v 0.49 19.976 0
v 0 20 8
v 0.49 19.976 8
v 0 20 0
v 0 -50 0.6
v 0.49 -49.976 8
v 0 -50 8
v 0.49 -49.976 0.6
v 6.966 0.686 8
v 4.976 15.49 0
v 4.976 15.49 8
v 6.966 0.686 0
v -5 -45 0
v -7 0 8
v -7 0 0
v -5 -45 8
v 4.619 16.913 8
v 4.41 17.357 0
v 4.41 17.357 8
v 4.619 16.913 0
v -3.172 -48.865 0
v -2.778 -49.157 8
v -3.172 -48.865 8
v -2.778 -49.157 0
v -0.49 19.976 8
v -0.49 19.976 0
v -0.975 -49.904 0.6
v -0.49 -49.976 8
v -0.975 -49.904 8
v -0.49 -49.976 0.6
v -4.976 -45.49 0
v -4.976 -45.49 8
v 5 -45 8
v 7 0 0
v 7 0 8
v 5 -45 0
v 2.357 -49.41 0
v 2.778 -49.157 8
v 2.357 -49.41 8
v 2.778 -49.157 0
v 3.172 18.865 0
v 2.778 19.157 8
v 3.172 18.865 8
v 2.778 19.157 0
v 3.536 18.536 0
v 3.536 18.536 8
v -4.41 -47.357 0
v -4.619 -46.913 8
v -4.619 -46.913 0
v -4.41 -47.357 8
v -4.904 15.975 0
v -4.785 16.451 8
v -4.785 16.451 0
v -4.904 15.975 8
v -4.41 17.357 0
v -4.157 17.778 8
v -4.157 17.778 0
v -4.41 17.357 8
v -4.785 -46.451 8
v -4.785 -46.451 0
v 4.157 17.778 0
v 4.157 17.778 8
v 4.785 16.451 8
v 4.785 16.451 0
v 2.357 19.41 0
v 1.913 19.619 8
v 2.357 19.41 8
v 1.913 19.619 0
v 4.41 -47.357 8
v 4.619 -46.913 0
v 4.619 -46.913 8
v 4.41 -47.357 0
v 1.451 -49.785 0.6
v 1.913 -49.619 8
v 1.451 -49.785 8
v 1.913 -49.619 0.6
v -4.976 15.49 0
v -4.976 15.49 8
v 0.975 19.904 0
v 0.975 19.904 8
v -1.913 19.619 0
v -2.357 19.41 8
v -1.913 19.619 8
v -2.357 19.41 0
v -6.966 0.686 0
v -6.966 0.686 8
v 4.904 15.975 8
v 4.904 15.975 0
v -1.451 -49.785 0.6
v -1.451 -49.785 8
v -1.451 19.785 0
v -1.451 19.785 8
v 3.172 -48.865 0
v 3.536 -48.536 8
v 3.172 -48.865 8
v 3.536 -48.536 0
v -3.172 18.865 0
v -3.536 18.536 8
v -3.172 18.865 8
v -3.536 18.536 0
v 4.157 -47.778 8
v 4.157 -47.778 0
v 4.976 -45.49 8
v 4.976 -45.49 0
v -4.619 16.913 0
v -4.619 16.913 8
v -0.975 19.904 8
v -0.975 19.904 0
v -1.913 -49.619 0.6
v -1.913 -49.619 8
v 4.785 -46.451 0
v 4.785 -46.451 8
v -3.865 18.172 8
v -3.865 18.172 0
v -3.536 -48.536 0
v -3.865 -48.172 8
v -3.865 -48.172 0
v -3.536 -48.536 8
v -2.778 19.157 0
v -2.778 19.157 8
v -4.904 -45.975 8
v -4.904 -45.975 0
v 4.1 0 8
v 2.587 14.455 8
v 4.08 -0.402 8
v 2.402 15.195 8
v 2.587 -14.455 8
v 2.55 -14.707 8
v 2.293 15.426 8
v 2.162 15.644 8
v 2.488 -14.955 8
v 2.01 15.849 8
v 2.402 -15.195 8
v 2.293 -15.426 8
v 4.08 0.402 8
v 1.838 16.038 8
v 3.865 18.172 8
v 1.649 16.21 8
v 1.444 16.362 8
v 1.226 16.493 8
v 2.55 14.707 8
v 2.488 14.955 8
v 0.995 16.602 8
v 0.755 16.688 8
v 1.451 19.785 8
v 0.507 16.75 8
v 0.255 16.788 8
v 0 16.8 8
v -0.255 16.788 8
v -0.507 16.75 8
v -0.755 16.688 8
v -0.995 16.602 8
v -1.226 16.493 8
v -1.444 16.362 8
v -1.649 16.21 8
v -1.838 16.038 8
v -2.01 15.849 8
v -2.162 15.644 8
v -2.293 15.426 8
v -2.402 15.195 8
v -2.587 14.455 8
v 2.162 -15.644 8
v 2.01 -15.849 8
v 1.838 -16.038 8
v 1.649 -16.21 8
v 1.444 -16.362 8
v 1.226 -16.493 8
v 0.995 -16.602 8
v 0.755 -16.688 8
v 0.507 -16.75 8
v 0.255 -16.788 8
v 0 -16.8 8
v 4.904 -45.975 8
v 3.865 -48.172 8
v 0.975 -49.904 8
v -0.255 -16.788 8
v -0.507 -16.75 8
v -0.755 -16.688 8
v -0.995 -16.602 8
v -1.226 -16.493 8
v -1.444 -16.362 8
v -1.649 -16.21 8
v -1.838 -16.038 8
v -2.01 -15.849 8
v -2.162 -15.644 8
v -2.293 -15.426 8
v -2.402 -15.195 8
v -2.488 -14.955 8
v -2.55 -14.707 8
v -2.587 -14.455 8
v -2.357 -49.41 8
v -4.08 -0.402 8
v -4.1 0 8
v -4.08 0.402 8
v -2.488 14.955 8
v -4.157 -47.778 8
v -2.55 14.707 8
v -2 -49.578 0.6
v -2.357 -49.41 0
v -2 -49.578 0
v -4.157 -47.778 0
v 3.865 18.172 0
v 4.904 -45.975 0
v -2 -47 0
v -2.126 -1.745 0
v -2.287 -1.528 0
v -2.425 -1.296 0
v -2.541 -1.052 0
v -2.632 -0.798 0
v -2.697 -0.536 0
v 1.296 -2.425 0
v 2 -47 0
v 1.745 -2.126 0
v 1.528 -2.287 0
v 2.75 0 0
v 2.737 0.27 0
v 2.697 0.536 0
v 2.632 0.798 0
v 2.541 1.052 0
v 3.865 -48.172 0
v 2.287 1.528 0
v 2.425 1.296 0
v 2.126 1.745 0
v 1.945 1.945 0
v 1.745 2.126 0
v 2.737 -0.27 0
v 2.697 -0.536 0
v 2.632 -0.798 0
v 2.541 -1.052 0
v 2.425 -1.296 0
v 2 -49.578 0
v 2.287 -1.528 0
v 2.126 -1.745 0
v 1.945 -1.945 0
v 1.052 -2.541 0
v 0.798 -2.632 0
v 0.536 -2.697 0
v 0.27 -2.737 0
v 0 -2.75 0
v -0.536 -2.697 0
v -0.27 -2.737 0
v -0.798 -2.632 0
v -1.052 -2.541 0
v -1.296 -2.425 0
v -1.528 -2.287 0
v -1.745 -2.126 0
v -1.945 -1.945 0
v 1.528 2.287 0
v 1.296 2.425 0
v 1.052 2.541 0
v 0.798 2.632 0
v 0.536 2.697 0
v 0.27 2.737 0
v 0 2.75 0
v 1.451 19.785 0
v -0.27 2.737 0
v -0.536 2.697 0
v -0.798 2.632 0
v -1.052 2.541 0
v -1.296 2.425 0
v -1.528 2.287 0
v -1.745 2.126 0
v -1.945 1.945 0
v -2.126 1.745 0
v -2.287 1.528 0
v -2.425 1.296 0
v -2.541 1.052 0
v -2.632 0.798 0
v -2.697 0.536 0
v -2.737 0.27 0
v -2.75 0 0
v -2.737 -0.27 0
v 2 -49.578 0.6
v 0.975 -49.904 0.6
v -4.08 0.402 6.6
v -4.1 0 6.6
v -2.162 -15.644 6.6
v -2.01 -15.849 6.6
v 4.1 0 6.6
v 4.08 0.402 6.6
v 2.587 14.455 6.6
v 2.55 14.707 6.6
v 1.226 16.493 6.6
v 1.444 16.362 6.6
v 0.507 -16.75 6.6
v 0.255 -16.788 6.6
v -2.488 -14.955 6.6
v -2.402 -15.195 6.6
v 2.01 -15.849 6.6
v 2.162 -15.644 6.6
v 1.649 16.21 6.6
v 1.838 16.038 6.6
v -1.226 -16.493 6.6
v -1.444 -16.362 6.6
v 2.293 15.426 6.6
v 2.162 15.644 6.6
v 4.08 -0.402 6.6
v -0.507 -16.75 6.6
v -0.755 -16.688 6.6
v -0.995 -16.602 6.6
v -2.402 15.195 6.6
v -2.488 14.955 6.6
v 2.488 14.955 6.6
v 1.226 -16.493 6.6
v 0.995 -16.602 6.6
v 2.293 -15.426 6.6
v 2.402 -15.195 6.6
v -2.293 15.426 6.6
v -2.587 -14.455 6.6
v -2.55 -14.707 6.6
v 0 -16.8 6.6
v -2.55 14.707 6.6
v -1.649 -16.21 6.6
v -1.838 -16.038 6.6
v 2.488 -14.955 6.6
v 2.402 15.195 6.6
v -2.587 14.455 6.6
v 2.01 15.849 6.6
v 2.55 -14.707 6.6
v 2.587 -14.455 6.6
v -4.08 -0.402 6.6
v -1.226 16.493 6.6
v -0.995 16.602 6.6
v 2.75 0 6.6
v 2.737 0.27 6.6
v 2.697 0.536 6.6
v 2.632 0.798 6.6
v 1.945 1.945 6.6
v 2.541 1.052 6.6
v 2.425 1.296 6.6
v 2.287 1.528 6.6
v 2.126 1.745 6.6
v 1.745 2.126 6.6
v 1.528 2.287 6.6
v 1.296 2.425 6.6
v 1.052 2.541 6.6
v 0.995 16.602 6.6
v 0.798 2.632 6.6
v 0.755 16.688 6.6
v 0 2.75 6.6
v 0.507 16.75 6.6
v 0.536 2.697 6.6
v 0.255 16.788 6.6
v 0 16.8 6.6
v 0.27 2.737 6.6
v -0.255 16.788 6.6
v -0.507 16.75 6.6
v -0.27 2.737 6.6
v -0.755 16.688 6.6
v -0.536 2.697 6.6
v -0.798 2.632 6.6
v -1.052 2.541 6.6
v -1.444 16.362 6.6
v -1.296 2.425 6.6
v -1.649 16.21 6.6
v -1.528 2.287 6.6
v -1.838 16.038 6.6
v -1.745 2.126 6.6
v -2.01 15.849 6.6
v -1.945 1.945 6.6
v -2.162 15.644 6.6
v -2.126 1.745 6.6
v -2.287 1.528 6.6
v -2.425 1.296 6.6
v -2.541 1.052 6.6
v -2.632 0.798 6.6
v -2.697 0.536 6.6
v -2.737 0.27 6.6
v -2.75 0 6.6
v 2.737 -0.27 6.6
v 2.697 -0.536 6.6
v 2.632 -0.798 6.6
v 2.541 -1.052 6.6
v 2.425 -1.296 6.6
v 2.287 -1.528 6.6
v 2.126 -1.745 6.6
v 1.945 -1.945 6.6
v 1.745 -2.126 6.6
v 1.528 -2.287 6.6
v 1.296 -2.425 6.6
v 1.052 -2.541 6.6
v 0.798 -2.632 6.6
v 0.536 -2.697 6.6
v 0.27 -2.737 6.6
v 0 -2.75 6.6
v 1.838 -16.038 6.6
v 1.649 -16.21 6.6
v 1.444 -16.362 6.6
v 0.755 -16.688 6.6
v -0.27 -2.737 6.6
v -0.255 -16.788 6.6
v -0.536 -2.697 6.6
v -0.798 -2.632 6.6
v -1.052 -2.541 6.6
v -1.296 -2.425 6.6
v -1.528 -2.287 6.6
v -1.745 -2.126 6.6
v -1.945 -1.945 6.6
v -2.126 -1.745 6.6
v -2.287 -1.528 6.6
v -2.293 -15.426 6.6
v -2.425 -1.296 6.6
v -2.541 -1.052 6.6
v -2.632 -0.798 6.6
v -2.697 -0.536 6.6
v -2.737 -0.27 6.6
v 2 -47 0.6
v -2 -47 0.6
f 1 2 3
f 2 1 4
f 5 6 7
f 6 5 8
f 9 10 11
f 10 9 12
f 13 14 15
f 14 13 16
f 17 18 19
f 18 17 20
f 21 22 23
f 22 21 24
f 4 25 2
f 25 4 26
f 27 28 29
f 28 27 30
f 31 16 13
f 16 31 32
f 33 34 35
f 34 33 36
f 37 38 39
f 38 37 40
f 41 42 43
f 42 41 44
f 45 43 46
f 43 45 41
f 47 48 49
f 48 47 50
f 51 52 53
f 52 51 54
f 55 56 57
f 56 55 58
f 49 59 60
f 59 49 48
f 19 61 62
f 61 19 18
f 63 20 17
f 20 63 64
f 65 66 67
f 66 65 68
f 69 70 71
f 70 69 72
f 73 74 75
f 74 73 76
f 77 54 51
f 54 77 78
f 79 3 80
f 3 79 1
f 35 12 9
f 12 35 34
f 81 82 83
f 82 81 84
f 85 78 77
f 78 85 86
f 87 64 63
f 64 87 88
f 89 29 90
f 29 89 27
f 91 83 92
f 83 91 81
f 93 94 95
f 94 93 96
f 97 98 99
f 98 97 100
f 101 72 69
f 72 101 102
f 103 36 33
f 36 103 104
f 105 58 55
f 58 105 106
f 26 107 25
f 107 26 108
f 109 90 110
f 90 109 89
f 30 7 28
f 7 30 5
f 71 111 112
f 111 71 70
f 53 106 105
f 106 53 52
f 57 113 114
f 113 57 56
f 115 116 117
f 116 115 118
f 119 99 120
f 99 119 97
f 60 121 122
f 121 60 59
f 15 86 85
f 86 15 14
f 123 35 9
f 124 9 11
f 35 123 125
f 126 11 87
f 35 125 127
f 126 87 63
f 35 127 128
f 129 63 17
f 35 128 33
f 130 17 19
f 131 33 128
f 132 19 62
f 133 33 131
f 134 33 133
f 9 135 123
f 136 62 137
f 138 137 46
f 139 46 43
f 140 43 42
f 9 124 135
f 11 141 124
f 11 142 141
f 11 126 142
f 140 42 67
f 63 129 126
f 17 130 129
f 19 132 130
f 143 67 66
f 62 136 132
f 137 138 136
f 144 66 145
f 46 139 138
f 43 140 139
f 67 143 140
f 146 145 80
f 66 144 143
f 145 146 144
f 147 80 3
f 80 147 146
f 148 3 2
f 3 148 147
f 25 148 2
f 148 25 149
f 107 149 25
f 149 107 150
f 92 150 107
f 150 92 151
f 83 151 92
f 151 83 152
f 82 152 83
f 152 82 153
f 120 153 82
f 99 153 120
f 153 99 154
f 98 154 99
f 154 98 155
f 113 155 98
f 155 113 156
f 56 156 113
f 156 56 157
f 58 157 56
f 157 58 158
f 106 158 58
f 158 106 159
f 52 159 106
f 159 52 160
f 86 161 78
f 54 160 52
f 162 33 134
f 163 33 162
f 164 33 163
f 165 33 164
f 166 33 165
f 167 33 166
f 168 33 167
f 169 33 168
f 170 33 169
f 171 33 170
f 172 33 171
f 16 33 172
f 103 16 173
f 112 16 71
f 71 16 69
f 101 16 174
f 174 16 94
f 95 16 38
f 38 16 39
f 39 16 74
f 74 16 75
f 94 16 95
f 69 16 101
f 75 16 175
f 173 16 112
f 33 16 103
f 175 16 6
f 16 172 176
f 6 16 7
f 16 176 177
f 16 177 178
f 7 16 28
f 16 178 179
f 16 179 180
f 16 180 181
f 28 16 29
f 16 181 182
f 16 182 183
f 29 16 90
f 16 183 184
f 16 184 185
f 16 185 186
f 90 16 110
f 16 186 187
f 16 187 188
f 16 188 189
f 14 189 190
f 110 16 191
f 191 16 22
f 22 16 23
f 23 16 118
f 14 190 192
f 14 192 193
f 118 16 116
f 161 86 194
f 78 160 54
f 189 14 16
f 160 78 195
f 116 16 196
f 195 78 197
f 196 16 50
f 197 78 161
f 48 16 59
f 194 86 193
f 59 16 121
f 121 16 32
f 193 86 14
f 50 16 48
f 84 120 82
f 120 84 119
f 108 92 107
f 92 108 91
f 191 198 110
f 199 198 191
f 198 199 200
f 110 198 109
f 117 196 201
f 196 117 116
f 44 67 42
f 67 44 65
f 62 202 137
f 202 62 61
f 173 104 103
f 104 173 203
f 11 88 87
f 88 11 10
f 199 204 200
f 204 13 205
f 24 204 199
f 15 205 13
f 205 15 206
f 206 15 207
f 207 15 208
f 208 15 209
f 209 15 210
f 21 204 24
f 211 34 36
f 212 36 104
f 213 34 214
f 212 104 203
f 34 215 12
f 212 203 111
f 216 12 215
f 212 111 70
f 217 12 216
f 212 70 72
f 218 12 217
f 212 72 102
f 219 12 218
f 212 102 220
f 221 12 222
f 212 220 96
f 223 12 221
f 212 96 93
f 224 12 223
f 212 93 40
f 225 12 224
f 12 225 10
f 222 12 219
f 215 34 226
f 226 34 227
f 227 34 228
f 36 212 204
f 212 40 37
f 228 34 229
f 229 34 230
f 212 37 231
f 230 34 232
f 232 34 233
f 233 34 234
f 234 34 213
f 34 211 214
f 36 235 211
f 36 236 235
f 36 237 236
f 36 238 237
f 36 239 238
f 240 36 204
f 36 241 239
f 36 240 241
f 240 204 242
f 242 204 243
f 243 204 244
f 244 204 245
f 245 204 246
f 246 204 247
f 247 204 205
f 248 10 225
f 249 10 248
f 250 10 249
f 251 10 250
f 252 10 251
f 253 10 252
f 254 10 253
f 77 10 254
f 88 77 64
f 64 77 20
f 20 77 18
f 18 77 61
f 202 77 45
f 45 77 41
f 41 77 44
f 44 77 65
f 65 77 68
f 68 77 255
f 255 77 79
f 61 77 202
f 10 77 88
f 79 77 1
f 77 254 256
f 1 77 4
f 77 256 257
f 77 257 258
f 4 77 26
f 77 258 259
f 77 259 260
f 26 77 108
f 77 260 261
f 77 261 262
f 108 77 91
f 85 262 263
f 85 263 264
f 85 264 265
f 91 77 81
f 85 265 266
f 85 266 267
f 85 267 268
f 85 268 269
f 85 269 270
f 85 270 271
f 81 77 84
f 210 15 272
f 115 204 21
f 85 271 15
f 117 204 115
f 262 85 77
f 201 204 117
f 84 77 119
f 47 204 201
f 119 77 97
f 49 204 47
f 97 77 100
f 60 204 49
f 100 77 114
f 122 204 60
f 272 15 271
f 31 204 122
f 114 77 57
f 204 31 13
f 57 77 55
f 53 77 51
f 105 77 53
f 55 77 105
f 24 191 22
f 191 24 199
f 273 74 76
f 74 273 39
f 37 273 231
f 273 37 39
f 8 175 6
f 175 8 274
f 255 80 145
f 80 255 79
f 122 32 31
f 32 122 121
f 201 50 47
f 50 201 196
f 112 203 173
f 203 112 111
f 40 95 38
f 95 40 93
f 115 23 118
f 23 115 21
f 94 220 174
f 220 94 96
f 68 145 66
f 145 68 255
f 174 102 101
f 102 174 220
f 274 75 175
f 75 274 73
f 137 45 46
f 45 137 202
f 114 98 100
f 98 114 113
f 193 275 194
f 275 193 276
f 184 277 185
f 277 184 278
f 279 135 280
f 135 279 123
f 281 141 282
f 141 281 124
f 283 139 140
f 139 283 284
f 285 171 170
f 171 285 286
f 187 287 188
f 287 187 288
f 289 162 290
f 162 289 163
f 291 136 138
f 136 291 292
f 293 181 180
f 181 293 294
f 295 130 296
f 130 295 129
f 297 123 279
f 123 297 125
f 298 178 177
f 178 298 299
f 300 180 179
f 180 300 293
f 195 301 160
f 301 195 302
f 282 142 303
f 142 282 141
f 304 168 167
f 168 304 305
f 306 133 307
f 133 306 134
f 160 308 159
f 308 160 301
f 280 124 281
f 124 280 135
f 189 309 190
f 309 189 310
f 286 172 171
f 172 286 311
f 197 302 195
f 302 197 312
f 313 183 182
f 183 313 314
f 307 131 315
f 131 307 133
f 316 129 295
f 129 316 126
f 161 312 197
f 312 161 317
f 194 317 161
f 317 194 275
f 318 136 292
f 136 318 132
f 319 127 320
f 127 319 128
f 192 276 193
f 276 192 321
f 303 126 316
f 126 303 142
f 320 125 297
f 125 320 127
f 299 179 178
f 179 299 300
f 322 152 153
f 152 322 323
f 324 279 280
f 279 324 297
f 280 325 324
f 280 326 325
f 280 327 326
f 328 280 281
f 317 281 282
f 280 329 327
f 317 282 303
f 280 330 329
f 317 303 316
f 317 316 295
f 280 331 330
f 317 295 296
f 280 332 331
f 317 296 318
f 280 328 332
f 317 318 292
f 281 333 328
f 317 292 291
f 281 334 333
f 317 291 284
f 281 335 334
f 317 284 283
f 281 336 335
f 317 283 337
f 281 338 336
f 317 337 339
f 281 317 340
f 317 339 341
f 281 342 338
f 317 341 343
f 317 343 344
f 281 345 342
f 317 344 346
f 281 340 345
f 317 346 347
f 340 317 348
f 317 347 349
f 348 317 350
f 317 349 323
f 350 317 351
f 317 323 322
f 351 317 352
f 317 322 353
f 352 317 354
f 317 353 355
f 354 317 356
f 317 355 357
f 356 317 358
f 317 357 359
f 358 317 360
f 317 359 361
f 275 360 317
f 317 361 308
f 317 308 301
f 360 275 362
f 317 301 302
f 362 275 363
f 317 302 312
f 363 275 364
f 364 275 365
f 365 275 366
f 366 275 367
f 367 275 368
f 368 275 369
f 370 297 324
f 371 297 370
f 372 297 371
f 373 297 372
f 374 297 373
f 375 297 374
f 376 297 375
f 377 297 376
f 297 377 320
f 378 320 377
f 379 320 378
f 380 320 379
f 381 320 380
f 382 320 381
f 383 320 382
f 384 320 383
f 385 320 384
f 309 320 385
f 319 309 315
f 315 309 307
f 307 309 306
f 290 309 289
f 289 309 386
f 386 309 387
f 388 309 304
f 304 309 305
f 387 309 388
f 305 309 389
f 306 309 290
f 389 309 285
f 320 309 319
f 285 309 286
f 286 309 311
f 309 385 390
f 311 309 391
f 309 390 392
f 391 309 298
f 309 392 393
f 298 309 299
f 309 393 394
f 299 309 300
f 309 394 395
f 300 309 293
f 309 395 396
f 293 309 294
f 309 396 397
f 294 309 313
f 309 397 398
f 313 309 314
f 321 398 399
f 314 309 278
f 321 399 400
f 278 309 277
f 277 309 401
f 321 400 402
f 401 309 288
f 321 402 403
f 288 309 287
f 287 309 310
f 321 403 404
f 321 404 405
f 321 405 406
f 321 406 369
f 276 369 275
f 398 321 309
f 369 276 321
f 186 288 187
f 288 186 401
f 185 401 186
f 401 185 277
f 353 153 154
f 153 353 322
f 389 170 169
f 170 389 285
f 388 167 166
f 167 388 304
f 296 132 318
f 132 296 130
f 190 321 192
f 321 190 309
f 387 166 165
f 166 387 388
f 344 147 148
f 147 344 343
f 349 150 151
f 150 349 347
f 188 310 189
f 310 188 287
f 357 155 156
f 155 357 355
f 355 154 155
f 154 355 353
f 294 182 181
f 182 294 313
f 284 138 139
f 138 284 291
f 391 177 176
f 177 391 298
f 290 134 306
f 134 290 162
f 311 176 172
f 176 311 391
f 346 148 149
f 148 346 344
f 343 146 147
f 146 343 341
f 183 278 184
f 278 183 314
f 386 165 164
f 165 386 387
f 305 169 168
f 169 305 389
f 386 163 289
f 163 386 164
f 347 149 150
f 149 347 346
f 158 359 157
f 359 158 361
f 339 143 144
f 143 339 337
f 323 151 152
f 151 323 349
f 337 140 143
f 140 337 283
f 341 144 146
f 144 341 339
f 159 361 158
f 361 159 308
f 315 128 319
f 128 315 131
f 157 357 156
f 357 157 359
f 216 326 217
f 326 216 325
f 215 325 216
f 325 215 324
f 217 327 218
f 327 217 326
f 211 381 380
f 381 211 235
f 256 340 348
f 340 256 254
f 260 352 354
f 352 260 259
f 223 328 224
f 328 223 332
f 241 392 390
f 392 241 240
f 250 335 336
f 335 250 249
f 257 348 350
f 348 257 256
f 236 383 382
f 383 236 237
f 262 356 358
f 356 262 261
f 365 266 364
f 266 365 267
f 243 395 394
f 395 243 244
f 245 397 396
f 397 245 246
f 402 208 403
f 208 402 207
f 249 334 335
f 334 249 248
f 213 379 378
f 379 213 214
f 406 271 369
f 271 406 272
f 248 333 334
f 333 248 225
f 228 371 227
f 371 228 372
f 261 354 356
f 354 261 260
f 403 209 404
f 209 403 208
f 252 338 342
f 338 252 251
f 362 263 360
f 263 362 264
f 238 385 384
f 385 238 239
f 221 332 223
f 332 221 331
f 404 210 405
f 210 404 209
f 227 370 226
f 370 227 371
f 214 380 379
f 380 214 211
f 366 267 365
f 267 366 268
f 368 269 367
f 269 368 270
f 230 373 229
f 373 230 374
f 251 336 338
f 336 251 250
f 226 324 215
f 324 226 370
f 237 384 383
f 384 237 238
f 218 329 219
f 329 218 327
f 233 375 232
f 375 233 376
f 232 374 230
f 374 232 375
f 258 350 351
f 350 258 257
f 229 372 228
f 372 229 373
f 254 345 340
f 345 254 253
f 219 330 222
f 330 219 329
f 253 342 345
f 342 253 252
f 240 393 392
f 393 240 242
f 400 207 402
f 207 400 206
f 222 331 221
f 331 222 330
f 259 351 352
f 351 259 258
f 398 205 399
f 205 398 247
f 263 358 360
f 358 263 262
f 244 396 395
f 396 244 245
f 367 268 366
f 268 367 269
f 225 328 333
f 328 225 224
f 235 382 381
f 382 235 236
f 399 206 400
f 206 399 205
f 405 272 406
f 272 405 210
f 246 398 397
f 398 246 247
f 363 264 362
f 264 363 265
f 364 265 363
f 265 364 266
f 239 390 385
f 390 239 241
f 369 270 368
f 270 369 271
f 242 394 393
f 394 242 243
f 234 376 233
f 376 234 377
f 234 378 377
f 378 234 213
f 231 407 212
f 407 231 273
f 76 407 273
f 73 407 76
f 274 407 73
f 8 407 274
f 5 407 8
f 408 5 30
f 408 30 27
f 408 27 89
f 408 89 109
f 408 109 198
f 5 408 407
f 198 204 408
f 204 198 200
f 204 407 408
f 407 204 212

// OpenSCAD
// Leg V1 and single-leg test stand. Units mm. OpenSCAD 2021.01.
// part="leg":   one leg for the double-arm SG90 horn. Print pocket side UP.
// part="stand": holds one assembled V4 cradle upright so one leg swings freely.
// Horn size comes from the seller listing (33mm double arm), not a measured horn.
// Pocket clearance is deliberately generous; the horn's own screws do the holding.
$fn=64;
part="leg";

// ---------- leg ----------
leg_t=8;            // thick enough for the horn screws to bite without poking out
hip_d=14;           // width around the horn hub
foot_d=10;          // rounded foot
leg_len=45;         // shaft centre to foot centre
tail_len=15;        // covers the upper horn arm
horn_len=33;        // listing value: double-arm horn overall length
horn_hub_d=7.6;     // assumed hub size + clearance (not measured)
horn_tip_d=4.6;     // assumed arm tip width + clearance (not measured)
clear=0.6;          // total extra length/width in the pocket
pocket=1.4;         // pocket depth; the horn arm sits mostly inside it
access_d=5.5;       // screwdriver reaches the shaft screw through this hole
tip_c=(horn_len+clear)/2-(horn_tip_d+clear)/2;

module leg_outline() {
  hull() { circle(d=hip_d); translate([0,-leg_len]) circle(d=foot_d); }
  hull() { circle(d=hip_d); translate([0,tail_len]) circle(d=foot_d); }
}
module horn_pocket() {
  hull() {
    circle(d=horn_hub_d+clear);
    for(s=[-1,1]) translate([0,s*tip_c]) circle(d=horn_tip_d+clear);
  }
}
module leg() {
  difference() {
    linear_extrude(leg_t) leg_outline();
    translate([0,0,leg_t-pocket]) linear_extrude(pocket+.1) horn_pocket();
    translate([0,0,-.1]) cylinder(d=access_d,h=leg_t+.2);
    // Toe mark on the outer (bed) face: a shallow groove so you can see which end is the foot.
    translate([-2,-leg_len-foot_d/2-1,-.1]) cube([4,4,0.7]);
  }
}

// ---------- stand ----------
plate_t=4; plate_l=44;     // V4 cradle plate
slot_w=4.3; slot_depth=8;  // plate slides in on its continuous long edge
wall=2.5;
tower_h=58;                // puts the servo shaft about 65mm above the table
base=[80,60,4];
module stand() {
  difference() {
    union() {
      translate([-base[0]/2,-base[1]/2,0]) cube(base);
      translate([-(plate_l+2*wall)/2,-(slot_w+2*wall)/2,0])
        cube([plate_l+2*wall,slot_w+2*wall,tower_h]);
    }
    translate([-(plate_l+0.6)/2,-slot_w/2,tower_h-slot_depth])
      cube([plate_l+0.6,slot_w,slot_depth+.1]);
  }
}

if(part=="leg") leg(); else stand();

assert(tip_c+(horn_tip_d+clear)/2<=tail_len+foot_d/2-2.5,"Wall beyond upper horn tip");
assert(leg_t-pocket>=6,"Screw bite below the horn");
assert((hip_d-(horn_hub_d+clear))/2>=2.5,"Side wall around horn hub");
// Shaft height = slot bottom + half the 30mm plate; foot must clear the base.
assert(tower_h-slot_depth+15-leg_len-foot_d/2>base[2]+8,"Foot clears the base");
